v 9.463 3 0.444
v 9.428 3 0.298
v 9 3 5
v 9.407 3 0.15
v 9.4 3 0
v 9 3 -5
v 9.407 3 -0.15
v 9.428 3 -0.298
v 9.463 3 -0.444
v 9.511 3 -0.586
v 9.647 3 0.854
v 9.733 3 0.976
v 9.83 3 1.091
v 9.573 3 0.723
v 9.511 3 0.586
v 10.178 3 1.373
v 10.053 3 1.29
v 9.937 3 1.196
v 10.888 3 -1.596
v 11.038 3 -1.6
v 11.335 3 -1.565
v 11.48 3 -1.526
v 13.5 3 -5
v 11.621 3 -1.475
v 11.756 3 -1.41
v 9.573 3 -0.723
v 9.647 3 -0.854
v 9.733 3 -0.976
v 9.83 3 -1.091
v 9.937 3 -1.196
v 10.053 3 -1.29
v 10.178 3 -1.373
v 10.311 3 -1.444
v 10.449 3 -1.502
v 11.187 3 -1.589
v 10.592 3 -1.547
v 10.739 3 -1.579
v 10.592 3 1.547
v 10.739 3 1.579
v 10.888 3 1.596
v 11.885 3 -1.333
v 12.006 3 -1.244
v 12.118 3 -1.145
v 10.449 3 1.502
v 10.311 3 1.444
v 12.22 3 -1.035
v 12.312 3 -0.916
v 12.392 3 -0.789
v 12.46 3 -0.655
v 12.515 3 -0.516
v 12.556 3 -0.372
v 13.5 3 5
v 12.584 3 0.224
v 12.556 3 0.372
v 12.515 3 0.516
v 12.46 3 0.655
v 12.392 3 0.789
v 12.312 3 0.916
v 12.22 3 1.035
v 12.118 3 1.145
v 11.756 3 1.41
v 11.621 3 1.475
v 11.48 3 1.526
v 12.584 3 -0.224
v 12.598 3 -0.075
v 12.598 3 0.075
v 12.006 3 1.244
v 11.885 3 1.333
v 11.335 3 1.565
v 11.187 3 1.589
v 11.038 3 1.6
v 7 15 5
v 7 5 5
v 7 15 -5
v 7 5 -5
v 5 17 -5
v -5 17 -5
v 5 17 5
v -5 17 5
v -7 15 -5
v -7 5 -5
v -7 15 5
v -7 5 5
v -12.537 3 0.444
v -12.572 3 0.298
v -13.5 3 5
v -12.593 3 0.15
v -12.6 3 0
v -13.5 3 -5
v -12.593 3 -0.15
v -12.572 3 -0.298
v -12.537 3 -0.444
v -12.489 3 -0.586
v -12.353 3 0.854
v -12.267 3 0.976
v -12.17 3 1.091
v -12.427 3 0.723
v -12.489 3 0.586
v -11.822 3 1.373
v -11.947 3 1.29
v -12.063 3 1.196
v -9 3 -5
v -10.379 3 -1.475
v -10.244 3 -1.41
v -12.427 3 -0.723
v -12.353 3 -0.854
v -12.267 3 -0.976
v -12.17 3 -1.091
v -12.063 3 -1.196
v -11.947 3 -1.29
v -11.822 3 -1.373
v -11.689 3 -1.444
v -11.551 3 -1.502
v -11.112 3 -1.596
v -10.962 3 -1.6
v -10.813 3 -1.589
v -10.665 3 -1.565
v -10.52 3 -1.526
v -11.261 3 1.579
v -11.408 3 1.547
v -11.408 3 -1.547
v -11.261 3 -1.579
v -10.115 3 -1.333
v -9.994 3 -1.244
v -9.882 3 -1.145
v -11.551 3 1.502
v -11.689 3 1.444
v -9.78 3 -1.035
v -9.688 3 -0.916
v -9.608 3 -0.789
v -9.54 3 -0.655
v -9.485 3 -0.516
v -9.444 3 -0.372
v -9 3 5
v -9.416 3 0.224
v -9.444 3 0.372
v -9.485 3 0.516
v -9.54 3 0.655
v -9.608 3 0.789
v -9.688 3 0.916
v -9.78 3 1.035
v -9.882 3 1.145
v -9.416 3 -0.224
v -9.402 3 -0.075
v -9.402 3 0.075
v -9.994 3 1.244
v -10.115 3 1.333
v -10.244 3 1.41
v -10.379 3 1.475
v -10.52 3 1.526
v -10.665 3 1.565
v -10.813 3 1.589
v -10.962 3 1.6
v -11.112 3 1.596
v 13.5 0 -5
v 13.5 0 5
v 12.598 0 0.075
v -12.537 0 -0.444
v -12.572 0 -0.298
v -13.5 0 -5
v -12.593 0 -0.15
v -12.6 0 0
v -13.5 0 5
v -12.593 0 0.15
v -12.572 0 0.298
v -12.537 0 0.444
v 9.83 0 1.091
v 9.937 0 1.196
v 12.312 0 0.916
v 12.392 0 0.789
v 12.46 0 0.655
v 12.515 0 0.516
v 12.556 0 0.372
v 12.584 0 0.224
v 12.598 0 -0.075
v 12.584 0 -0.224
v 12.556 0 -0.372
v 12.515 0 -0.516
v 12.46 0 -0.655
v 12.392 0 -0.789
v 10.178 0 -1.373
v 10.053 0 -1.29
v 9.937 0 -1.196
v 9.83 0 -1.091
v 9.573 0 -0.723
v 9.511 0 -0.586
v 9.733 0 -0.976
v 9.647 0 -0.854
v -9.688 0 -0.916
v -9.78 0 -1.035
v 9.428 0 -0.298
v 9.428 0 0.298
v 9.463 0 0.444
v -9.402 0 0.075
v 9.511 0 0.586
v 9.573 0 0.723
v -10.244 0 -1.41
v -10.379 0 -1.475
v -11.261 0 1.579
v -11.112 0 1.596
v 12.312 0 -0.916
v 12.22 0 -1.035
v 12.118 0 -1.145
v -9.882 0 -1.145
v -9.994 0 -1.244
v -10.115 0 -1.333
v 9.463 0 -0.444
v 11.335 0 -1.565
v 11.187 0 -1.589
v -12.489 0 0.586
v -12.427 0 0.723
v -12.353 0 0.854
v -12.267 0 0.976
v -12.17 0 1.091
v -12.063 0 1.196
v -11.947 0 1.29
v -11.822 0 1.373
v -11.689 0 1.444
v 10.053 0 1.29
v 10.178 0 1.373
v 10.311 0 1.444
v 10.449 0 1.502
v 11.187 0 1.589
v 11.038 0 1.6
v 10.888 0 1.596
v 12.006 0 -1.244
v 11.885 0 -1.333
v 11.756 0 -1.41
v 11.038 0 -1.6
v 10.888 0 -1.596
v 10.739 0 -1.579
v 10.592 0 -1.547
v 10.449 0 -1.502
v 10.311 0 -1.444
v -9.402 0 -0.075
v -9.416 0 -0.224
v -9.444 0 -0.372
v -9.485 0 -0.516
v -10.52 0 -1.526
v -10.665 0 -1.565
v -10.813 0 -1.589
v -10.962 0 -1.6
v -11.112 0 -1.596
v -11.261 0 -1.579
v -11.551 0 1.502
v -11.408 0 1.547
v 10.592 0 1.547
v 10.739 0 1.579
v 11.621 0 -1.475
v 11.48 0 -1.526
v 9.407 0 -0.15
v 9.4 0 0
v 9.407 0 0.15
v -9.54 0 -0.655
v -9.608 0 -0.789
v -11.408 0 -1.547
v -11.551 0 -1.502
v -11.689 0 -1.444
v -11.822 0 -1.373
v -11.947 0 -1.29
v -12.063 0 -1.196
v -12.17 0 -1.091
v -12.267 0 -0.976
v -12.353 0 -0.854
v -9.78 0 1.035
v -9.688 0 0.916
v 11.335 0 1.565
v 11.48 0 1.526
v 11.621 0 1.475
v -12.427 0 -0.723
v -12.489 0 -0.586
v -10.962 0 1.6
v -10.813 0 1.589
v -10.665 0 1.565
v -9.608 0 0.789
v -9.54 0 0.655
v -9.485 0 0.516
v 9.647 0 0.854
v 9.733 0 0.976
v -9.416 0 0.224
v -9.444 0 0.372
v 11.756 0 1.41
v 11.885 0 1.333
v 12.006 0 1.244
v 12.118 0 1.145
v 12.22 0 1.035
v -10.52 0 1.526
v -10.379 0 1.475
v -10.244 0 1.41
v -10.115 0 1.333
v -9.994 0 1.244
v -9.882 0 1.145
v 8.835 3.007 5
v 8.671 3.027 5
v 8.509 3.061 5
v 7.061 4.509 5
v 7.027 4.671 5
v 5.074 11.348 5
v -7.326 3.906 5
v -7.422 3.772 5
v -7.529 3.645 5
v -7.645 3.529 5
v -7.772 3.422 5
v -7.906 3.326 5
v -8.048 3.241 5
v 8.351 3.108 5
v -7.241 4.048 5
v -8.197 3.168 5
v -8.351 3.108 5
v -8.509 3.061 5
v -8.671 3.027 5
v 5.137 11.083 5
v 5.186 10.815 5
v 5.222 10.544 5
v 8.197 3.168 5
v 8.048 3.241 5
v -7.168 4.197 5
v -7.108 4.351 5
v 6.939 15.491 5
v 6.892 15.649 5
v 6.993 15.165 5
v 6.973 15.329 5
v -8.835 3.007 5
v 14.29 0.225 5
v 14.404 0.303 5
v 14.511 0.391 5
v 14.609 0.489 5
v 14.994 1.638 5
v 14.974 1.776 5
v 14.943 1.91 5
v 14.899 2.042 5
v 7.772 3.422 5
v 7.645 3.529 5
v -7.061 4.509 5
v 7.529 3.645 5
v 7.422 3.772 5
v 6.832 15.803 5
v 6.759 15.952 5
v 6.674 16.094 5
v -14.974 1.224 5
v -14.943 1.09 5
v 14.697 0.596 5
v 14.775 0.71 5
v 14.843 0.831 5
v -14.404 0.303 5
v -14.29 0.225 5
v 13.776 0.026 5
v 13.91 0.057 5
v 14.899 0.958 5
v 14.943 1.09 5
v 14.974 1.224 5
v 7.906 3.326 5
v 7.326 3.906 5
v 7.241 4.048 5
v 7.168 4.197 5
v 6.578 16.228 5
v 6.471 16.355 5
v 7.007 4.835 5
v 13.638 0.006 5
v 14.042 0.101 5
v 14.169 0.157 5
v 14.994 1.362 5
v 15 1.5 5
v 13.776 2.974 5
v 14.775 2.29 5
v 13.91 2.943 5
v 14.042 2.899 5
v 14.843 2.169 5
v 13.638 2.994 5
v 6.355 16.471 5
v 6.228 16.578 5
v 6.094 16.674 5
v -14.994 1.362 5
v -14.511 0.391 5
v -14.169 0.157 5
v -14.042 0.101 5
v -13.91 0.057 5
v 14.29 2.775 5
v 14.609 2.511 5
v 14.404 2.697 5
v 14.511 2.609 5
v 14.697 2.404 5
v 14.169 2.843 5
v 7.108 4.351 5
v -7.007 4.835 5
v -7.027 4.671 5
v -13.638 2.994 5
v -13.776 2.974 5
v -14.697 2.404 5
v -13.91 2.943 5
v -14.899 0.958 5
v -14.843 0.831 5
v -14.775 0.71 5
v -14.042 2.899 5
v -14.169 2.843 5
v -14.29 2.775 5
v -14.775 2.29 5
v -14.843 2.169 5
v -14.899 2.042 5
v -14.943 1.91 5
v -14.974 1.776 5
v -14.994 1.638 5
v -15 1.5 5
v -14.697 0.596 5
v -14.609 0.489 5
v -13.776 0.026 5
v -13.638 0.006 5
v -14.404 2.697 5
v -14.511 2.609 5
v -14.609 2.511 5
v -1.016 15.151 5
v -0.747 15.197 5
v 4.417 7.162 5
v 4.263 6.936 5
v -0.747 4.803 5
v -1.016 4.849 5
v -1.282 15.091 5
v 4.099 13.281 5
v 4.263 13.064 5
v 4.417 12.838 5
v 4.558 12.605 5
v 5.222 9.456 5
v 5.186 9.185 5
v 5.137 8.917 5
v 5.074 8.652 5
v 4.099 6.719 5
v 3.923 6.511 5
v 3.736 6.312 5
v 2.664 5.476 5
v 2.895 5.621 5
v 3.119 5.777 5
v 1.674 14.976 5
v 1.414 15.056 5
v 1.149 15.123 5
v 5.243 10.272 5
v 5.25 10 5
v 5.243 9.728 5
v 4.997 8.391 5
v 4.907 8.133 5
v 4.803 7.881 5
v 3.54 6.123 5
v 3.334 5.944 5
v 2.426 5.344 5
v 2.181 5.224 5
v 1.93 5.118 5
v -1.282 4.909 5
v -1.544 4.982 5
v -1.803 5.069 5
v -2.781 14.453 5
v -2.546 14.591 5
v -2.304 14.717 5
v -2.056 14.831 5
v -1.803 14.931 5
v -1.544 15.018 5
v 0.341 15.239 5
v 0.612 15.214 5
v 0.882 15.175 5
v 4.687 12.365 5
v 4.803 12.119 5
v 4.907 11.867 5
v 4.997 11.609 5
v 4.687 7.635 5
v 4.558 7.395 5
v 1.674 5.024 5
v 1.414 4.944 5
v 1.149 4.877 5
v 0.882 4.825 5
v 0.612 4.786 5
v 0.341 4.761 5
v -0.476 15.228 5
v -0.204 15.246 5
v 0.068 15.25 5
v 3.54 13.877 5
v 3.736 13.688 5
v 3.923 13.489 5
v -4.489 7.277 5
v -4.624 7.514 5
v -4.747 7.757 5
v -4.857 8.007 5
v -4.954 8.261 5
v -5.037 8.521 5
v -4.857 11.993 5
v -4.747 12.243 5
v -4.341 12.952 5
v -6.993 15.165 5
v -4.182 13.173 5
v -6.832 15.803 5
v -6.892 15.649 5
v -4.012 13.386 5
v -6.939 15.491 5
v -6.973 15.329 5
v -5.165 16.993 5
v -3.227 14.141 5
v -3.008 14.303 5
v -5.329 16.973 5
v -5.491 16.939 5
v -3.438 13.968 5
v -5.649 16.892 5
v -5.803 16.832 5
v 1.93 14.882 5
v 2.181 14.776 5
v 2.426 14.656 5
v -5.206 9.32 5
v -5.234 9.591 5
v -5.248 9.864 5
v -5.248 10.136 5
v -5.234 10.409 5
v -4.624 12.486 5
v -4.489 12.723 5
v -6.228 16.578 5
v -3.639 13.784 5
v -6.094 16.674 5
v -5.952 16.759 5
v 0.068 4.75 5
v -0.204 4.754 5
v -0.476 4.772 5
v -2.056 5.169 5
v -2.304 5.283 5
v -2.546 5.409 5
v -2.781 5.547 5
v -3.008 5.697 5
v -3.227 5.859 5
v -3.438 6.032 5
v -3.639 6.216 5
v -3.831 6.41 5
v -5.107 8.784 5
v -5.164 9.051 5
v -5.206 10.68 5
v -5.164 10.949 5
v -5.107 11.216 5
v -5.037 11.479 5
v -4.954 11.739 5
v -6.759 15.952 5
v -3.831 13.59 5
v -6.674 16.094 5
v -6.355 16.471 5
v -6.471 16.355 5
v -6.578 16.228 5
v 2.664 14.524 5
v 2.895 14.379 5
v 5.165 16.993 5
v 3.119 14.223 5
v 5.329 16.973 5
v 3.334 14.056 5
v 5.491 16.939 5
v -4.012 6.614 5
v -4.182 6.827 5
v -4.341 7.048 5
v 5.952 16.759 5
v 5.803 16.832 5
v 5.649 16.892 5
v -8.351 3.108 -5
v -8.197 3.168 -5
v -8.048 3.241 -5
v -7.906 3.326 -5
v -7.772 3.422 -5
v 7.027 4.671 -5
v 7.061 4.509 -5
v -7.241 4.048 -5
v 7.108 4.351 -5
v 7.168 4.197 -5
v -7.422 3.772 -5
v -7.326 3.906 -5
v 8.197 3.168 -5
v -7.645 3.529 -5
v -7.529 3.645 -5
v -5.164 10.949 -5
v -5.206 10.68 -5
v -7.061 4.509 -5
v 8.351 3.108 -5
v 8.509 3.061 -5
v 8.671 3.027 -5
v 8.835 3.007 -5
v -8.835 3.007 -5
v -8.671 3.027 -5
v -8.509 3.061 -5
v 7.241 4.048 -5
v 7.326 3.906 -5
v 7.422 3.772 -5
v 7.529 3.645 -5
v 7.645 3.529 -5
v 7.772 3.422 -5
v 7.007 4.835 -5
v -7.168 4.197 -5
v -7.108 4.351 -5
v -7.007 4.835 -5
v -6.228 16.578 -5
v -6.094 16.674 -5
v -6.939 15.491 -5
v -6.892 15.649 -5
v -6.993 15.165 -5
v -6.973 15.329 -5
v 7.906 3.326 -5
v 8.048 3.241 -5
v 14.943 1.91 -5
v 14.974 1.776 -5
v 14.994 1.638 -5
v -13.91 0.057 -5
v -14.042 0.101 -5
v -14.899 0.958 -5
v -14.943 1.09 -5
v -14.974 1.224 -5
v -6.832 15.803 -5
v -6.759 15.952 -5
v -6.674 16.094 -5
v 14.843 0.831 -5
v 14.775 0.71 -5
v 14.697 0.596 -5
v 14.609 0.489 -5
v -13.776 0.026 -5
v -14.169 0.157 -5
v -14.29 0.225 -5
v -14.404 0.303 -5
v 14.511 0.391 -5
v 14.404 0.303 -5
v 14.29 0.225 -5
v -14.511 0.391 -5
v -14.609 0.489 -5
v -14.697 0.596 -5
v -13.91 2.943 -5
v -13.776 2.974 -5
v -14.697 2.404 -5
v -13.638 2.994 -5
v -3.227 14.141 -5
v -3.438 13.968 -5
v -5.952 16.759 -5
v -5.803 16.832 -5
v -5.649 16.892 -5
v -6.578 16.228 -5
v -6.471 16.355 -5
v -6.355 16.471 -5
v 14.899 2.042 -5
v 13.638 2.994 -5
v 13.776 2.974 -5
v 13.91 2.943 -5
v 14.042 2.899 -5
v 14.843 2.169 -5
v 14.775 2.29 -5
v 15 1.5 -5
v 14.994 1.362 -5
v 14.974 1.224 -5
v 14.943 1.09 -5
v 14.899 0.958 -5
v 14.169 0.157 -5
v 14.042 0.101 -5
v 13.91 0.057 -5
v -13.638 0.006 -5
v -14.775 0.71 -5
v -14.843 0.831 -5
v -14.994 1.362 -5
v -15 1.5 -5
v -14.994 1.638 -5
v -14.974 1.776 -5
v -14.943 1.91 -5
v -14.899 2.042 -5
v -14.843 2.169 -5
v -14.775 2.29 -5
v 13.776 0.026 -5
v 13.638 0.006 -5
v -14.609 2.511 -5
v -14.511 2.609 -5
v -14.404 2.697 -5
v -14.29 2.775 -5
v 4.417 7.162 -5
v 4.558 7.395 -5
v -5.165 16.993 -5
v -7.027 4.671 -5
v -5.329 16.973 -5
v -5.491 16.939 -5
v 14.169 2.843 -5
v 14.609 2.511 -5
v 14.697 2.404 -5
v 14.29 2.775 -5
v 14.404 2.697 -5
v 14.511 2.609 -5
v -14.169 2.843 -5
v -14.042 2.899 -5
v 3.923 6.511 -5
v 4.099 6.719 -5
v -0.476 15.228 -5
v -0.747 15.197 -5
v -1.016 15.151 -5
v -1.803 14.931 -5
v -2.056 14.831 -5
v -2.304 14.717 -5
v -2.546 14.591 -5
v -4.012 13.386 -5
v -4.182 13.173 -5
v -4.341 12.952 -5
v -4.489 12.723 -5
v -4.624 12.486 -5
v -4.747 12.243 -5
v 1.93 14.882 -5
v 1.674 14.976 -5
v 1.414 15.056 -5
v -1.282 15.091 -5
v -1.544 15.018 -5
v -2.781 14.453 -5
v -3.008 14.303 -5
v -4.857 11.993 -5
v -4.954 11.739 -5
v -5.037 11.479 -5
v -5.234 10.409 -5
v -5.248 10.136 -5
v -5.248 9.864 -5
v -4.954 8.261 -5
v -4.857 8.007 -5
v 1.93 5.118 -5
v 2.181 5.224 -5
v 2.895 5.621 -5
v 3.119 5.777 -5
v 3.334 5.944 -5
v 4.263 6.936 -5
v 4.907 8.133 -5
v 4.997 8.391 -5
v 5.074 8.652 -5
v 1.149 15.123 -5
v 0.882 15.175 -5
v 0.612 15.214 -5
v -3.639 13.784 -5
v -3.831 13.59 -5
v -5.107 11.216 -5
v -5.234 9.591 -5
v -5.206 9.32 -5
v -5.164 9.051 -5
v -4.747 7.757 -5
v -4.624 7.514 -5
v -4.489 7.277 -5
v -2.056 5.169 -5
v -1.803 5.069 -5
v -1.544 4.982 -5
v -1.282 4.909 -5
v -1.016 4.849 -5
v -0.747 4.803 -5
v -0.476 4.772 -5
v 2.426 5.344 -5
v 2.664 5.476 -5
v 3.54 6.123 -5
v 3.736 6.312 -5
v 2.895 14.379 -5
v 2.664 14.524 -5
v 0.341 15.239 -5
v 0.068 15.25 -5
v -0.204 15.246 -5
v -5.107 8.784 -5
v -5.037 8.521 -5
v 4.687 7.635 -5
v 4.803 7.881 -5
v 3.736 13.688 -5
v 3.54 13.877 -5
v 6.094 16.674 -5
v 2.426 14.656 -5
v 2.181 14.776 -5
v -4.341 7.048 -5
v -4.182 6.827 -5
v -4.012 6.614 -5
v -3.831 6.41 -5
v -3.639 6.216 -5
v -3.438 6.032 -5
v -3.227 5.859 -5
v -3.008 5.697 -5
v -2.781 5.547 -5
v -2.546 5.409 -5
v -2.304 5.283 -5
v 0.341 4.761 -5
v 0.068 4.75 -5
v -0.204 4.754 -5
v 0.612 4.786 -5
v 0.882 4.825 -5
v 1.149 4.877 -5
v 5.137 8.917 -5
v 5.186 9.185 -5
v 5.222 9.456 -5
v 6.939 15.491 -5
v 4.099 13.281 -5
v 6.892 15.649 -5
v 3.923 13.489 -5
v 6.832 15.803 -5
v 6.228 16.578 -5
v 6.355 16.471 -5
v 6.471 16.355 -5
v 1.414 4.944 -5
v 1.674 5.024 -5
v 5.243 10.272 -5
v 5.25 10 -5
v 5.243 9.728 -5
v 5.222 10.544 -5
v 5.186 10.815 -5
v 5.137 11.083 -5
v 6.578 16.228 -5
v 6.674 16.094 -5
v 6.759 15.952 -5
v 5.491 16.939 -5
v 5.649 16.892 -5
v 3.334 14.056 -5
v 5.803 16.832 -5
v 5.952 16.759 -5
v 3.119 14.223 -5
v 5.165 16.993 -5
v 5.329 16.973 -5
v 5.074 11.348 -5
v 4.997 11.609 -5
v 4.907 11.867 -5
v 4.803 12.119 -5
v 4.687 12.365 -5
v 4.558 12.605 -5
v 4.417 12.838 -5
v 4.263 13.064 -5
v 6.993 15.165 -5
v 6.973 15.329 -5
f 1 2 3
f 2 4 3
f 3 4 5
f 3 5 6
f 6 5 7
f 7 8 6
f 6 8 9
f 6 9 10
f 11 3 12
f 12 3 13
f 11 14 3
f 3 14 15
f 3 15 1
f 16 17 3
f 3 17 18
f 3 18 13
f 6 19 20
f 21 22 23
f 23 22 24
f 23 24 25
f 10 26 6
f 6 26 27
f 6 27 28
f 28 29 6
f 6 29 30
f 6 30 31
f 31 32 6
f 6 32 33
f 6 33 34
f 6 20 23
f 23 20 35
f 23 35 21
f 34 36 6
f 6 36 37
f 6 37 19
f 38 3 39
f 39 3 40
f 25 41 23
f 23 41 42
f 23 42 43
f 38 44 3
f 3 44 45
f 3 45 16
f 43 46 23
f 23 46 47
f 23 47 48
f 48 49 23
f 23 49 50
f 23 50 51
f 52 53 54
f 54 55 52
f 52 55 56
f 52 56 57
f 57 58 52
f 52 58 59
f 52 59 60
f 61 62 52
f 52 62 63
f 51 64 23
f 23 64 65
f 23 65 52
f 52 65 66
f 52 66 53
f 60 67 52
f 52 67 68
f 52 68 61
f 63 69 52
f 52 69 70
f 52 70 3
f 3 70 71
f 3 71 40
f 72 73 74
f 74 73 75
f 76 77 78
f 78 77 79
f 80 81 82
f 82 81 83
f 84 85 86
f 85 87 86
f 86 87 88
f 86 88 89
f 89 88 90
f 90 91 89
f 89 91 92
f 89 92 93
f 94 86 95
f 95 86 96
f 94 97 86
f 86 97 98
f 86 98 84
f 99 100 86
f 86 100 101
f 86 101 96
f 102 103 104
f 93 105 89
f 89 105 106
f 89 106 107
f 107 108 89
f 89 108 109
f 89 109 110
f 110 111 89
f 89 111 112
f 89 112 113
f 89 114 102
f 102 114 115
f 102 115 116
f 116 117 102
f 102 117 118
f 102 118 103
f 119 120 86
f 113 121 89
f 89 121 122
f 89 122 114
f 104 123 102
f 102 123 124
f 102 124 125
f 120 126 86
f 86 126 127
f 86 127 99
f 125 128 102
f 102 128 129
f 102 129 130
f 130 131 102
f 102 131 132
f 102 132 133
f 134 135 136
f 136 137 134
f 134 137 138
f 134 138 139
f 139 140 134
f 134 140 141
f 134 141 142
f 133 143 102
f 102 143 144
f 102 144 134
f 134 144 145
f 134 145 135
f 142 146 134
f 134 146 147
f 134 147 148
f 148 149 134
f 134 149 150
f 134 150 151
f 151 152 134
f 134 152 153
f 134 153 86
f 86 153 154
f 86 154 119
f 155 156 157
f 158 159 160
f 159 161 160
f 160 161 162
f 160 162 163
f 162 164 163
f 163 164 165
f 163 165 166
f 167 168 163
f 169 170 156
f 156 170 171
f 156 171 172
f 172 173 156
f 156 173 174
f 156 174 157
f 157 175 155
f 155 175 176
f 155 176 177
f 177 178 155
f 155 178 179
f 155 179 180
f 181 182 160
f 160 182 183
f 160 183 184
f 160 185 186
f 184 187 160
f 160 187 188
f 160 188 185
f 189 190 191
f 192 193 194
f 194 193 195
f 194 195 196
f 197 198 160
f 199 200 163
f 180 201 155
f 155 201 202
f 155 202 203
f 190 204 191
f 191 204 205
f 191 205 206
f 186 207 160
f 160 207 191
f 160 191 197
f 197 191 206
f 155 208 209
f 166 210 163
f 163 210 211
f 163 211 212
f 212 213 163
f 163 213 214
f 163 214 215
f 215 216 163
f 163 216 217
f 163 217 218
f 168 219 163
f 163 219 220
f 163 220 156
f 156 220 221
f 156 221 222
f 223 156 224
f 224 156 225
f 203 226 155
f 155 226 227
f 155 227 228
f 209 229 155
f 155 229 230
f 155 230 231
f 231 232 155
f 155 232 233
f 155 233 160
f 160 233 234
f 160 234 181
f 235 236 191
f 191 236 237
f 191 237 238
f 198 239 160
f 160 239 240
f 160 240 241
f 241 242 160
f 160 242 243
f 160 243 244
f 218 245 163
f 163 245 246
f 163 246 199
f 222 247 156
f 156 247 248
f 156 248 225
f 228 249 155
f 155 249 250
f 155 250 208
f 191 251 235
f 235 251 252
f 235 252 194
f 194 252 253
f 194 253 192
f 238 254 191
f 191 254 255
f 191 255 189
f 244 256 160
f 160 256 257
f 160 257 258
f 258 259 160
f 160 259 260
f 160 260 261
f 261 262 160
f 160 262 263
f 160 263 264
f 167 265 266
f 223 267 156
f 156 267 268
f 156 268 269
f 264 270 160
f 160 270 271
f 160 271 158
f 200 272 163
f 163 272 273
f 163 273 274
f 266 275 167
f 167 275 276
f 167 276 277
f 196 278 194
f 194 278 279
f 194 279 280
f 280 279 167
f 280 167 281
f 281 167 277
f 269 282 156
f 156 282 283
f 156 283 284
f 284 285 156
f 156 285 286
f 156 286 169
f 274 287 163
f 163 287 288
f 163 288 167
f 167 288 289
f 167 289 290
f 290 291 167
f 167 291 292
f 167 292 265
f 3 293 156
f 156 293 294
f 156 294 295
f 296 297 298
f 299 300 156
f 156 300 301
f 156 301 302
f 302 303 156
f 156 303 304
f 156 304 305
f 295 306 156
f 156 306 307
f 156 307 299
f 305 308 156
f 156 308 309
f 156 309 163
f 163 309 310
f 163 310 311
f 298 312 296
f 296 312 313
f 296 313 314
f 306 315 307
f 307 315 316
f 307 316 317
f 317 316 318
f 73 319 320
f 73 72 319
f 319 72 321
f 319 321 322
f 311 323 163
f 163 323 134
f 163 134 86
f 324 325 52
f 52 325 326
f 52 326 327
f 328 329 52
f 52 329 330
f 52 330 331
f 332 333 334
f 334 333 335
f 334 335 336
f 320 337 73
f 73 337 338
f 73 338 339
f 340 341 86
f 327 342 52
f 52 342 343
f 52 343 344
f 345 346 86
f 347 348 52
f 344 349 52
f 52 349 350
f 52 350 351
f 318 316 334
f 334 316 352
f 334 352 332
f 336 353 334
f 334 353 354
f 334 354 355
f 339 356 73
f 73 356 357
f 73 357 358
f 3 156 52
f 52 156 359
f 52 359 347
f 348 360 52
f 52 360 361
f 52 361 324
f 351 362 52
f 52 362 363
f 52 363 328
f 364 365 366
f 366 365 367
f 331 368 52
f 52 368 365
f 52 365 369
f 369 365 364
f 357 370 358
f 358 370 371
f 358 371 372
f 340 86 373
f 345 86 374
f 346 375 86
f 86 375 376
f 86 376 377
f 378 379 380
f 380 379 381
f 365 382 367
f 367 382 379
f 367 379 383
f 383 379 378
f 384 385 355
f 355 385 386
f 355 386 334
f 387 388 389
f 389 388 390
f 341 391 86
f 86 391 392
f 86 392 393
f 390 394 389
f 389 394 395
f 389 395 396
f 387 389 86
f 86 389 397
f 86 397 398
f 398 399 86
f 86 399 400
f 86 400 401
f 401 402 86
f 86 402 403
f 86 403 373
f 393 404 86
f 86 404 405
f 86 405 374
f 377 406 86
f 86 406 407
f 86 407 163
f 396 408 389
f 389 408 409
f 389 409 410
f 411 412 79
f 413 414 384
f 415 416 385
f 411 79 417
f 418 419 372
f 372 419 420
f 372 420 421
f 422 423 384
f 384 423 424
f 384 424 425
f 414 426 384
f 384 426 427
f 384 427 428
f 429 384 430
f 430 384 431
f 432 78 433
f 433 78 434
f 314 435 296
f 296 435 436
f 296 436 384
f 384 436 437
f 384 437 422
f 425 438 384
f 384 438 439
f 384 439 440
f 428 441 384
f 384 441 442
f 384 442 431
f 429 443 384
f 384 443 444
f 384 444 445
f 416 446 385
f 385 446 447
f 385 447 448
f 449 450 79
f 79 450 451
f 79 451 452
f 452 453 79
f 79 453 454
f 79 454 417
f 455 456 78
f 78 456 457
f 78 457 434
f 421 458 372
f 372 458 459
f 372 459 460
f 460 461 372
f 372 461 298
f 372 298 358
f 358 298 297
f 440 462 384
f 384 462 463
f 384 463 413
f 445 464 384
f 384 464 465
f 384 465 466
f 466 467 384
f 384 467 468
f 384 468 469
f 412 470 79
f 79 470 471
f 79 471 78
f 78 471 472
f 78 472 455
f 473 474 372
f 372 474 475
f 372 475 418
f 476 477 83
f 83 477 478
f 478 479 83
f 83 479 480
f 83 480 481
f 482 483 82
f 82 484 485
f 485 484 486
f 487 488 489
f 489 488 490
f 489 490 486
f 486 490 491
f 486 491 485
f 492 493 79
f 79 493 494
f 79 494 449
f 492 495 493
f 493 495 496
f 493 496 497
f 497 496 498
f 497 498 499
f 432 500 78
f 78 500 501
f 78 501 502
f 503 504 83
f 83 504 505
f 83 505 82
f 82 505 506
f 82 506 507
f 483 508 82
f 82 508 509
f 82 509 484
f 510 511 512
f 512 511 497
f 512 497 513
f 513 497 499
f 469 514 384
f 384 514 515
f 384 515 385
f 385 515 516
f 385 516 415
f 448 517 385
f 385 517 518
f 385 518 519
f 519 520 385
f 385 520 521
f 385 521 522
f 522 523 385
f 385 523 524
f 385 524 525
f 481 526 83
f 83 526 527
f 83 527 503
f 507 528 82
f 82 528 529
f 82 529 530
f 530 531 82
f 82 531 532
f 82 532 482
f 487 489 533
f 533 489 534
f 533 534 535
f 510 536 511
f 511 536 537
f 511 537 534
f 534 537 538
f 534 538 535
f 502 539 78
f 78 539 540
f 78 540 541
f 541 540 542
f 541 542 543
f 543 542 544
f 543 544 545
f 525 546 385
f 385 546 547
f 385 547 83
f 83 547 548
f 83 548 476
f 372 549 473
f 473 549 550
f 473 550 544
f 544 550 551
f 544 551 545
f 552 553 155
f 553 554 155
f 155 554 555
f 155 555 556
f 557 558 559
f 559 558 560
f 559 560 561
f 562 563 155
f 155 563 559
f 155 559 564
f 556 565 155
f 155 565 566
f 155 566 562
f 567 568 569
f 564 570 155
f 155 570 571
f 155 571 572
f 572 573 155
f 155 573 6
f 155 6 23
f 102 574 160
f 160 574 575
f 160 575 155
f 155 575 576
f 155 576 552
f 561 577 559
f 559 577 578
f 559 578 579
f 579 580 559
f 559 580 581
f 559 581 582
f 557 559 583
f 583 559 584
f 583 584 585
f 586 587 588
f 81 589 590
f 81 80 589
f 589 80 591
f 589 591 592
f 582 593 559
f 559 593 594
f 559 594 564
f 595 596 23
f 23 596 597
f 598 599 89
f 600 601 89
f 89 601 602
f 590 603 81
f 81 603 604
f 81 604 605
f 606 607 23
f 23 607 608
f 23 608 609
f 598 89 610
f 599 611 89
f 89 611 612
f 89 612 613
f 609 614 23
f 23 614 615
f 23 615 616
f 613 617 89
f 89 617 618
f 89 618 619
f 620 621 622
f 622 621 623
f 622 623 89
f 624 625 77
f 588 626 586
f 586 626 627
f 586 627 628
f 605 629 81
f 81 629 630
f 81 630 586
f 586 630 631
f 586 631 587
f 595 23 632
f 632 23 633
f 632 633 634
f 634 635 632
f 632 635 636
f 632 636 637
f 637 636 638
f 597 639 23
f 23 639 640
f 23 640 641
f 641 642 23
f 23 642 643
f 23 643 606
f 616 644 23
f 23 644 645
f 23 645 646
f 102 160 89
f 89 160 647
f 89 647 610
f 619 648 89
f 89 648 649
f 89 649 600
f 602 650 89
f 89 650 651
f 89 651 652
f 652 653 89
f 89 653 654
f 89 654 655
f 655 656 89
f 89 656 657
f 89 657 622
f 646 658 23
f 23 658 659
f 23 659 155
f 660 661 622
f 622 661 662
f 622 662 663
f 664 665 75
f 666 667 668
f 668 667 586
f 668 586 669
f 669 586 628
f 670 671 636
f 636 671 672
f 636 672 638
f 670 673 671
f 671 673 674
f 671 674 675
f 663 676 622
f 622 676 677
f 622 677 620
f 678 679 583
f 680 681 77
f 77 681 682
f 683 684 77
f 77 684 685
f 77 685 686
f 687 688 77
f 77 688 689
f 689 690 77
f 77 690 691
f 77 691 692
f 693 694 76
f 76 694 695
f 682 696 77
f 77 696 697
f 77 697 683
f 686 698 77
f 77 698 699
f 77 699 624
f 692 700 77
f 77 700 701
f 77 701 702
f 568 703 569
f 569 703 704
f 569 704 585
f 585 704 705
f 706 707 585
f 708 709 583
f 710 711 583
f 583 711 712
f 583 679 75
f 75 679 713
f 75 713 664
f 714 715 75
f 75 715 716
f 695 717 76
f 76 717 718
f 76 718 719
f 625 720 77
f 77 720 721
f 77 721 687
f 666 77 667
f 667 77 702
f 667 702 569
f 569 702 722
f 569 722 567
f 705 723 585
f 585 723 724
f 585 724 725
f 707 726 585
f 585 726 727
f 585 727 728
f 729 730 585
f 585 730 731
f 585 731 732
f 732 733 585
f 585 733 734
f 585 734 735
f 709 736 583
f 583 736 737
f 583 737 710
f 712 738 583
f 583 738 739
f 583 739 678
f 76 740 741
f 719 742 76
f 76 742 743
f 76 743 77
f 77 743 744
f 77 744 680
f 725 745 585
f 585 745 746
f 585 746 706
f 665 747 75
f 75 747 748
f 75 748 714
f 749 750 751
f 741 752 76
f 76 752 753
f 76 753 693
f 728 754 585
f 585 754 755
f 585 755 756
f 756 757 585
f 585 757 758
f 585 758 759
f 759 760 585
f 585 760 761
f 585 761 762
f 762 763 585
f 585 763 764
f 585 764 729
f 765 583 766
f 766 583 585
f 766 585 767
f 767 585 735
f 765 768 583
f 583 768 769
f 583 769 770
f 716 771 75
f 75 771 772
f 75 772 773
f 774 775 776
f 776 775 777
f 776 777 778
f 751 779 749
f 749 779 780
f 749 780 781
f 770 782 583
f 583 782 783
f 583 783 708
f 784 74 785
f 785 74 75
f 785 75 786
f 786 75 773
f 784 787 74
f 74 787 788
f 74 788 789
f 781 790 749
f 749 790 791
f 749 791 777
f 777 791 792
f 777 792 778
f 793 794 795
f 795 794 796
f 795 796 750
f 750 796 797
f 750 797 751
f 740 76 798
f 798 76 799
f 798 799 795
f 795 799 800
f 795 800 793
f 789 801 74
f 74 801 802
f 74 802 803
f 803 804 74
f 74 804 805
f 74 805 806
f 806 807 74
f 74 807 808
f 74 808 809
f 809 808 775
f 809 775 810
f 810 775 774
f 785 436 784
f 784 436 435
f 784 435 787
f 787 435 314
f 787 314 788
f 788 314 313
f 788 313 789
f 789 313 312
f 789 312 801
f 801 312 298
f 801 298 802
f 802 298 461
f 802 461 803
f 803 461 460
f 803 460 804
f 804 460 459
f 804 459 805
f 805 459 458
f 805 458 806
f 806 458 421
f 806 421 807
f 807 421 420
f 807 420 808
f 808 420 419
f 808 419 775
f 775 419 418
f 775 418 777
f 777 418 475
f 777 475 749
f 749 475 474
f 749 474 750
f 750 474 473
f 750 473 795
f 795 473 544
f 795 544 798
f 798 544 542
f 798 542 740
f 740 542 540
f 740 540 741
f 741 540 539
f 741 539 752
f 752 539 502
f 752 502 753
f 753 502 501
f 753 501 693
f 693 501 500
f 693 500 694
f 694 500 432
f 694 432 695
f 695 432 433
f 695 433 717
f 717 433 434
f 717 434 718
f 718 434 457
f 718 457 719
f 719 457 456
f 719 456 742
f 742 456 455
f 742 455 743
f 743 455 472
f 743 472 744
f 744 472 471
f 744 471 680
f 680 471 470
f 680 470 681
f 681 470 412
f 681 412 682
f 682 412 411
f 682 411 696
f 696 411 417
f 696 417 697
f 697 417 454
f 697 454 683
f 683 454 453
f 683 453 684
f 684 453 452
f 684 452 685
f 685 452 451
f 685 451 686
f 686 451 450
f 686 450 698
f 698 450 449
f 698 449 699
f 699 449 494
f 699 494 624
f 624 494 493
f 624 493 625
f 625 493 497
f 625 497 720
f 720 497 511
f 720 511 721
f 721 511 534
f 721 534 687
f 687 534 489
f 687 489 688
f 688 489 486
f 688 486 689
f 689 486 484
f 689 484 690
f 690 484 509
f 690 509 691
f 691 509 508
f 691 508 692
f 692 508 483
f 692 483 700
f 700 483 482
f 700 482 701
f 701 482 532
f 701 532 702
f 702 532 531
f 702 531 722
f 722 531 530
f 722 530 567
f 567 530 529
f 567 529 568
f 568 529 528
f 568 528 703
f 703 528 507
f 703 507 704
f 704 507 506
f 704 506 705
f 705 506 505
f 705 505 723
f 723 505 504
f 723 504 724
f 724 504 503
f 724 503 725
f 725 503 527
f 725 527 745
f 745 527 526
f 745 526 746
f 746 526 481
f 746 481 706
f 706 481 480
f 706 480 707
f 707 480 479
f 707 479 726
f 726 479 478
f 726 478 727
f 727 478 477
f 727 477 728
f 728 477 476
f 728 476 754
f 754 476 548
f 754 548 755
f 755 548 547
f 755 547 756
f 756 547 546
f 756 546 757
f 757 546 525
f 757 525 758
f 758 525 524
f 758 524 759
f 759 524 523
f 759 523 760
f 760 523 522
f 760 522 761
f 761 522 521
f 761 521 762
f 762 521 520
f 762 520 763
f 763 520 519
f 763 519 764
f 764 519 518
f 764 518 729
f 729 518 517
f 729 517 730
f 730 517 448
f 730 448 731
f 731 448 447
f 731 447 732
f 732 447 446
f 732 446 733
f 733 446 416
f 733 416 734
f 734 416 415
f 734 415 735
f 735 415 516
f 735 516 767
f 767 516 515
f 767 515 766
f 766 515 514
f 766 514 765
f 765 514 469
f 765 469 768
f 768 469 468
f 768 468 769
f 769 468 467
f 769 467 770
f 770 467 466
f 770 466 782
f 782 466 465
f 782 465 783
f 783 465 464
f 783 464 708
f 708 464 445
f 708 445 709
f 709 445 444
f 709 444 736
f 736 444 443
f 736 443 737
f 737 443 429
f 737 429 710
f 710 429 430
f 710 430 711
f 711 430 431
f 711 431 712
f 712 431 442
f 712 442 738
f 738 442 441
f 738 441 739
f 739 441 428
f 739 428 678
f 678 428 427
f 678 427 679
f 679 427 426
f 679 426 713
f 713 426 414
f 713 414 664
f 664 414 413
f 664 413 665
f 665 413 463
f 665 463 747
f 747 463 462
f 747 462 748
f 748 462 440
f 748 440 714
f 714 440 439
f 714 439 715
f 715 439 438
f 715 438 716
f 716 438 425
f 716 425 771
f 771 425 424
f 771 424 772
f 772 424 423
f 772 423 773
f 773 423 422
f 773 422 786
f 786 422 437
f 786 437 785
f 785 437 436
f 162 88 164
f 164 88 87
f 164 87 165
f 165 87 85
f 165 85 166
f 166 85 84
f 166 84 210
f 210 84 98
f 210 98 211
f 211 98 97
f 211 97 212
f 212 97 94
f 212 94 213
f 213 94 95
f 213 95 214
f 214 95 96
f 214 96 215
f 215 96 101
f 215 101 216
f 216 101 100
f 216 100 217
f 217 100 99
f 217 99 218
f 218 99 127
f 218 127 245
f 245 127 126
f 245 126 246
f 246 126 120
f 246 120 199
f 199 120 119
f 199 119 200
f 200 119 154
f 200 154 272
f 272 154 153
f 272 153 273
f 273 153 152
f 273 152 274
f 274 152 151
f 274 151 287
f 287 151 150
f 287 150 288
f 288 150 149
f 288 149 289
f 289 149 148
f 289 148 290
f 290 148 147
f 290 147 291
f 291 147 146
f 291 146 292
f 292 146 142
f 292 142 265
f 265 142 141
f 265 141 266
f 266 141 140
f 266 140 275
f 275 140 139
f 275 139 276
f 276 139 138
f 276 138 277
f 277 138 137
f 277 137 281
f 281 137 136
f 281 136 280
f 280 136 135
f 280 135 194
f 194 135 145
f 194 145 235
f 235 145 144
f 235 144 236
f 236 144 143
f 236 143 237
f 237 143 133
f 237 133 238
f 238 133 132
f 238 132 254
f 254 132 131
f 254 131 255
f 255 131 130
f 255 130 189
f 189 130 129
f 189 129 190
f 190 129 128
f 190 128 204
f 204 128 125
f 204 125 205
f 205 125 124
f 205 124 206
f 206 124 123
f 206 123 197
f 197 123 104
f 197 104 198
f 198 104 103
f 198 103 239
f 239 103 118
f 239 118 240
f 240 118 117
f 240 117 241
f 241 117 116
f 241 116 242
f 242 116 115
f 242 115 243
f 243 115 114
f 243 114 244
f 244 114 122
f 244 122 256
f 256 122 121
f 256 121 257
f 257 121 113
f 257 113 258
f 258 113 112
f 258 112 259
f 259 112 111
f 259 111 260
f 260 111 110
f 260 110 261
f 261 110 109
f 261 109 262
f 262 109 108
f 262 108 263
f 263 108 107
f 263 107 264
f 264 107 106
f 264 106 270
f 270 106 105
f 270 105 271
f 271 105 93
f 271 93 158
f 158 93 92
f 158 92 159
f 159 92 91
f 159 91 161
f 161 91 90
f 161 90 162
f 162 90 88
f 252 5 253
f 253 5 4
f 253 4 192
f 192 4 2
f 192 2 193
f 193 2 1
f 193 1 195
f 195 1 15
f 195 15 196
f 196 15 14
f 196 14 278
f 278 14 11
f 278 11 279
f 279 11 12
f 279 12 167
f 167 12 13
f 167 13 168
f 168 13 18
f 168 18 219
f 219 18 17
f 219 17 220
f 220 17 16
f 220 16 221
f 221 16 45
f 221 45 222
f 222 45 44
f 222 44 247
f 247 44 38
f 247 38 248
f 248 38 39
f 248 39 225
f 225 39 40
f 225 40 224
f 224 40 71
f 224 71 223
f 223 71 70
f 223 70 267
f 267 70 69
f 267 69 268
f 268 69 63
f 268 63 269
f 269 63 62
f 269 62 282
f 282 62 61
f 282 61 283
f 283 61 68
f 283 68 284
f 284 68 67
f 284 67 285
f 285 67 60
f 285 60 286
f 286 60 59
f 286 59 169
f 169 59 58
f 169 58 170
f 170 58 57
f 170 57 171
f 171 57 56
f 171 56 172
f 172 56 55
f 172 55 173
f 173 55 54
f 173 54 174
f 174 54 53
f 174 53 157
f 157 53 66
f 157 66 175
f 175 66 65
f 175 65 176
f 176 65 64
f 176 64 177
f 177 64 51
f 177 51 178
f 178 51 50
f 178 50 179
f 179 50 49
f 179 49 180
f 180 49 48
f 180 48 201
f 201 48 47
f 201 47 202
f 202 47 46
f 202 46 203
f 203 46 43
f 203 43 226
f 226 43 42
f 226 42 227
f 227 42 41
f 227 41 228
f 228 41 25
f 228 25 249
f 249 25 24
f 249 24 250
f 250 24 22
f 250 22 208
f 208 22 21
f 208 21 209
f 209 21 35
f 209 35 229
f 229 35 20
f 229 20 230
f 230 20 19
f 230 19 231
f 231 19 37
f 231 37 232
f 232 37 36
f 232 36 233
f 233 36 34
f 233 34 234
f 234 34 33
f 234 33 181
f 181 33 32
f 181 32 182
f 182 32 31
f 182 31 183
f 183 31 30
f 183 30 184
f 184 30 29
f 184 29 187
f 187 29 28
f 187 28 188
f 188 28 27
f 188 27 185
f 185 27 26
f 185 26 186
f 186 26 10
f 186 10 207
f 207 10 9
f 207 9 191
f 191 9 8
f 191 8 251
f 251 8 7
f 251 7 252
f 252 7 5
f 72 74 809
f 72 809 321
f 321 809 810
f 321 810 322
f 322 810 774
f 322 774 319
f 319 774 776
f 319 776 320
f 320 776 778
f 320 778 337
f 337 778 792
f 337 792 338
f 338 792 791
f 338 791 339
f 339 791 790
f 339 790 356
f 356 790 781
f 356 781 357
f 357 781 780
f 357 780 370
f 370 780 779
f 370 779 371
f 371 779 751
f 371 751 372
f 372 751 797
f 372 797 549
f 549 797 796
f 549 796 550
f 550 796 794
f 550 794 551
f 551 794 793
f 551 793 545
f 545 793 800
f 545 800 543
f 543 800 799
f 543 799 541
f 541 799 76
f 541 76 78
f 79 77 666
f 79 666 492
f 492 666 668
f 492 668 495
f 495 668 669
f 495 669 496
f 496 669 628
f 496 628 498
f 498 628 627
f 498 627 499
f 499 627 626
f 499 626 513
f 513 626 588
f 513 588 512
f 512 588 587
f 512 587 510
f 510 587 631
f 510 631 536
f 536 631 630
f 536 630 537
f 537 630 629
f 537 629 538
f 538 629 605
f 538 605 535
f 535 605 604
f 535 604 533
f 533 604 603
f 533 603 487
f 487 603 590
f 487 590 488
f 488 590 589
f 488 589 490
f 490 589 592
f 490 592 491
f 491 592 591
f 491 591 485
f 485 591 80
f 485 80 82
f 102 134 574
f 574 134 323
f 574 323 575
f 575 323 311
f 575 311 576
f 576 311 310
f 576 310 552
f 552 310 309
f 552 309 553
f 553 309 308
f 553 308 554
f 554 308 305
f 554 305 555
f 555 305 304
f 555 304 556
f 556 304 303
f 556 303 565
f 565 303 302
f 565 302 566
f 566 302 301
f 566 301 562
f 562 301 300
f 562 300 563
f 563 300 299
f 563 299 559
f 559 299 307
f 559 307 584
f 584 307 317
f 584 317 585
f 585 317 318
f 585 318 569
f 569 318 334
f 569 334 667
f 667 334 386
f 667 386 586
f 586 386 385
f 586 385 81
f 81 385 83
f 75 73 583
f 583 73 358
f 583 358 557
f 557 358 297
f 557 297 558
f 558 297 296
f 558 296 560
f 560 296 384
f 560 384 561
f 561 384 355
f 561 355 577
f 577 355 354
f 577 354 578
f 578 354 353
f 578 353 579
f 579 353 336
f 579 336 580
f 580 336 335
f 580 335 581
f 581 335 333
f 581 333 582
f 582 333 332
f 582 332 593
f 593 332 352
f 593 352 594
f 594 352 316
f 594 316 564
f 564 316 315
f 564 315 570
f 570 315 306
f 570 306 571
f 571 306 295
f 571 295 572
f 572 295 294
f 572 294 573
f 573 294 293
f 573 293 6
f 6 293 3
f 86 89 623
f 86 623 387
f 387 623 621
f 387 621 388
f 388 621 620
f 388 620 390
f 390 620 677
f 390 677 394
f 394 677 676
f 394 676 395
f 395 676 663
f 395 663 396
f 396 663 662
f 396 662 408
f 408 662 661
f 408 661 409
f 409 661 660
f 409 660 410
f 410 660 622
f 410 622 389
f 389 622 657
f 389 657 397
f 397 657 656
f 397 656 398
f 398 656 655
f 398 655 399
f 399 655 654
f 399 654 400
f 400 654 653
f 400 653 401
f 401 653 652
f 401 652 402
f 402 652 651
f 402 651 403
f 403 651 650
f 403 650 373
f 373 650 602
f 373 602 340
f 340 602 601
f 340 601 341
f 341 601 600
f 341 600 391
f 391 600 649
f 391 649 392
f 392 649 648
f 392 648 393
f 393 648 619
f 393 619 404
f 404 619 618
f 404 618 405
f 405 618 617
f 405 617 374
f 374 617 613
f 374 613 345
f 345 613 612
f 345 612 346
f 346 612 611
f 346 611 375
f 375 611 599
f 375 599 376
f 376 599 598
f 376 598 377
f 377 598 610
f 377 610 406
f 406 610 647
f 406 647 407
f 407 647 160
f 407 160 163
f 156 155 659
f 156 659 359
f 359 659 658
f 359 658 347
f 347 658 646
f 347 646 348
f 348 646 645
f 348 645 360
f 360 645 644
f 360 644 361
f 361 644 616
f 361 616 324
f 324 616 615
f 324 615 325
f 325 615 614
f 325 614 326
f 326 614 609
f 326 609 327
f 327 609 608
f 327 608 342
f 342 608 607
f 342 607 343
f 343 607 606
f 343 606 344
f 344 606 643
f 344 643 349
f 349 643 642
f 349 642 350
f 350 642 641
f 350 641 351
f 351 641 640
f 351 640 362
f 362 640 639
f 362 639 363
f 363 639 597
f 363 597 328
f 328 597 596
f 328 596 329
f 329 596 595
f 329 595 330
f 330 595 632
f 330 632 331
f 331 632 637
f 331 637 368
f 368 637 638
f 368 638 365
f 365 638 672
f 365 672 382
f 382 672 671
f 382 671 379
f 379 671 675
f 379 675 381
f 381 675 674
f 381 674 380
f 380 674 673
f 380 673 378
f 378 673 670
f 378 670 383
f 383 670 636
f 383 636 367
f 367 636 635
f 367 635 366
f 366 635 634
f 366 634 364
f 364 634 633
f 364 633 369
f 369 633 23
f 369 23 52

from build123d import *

# Parameters (mm, degrees)
BOSS_EXTRUDE1_DEPTH = 5
SKETCH2_R           = 5.25
CUT_EXTRUDE1_DEPTH  = 25.779023387
SKETCH3_R           = 1.6
CUT_EXTRUDE2_DEPTH  = 22.118712082
FILLET1_R           = 2
FILLET2_R           = 1.5


with BuildPart() as part:
    # Sketch1 → Boss-Extrude1 (new, symmetric)
    with BuildSketch(Plane.XY):
        Polygon((-15, 0), (15, 0), (15, 3), (7, 3), (7, 17), (-7, 17), (-7, 3), (-15, 3), align=None)
    extrude(amount=BOSS_EXTRUDE1_DEPTH, both=True)

    # Sketch2 → Cut-Extrude1 (cut, through all)
    with BuildSketch(Plane.XY.offset(5)):
        with Locations((0, 10)):
            Circle(SKETCH2_R)
    extrude(amount=-CUT_EXTRUDE1_DEPTH, mode=Mode.SUBTRACT)

    # Sketch3 → Cut-Extrude2 (cut, through all)
    with BuildSketch(Plane(origin=(0, 3, 0), x_dir=(1, 0, 0), z_dir=(0, 1, 0))):
        with Locations(Location((11, 0, 0), (0, 0, 180))):
            Circle(SKETCH3_R)
        with Locations(Location((-11, 0, 0), (0, 0, 180))):
            Circle(SKETCH3_R)
    extrude(amount=-CUT_EXTRUDE2_DEPTH, mode=Mode.SUBTRACT)

    # Fillet1
    fillet1_edges = [part.edges().sort_by_distance(p)[0] for p in [
        (-7, 3, 0),
        (-7, 17, 0),
        (7, 17, 0),
        (7, 3, 0),
    ]]
    fillet(fillet1_edges, radius=FILLET1_R)

    # Fillet2
    fillet2_edges = [part.edges().sort_by_distance(p)[0] for p in [
        (-15, 0, 0),
        (-15, 3, 0),
        (15, 3, 0),
        (15, 0, 0),
    ]]
    fillet(fillet2_edges, radius=FILLET2_R - 0.0001)  # a hair under: the kernel refuses the full size


solid = part.part
